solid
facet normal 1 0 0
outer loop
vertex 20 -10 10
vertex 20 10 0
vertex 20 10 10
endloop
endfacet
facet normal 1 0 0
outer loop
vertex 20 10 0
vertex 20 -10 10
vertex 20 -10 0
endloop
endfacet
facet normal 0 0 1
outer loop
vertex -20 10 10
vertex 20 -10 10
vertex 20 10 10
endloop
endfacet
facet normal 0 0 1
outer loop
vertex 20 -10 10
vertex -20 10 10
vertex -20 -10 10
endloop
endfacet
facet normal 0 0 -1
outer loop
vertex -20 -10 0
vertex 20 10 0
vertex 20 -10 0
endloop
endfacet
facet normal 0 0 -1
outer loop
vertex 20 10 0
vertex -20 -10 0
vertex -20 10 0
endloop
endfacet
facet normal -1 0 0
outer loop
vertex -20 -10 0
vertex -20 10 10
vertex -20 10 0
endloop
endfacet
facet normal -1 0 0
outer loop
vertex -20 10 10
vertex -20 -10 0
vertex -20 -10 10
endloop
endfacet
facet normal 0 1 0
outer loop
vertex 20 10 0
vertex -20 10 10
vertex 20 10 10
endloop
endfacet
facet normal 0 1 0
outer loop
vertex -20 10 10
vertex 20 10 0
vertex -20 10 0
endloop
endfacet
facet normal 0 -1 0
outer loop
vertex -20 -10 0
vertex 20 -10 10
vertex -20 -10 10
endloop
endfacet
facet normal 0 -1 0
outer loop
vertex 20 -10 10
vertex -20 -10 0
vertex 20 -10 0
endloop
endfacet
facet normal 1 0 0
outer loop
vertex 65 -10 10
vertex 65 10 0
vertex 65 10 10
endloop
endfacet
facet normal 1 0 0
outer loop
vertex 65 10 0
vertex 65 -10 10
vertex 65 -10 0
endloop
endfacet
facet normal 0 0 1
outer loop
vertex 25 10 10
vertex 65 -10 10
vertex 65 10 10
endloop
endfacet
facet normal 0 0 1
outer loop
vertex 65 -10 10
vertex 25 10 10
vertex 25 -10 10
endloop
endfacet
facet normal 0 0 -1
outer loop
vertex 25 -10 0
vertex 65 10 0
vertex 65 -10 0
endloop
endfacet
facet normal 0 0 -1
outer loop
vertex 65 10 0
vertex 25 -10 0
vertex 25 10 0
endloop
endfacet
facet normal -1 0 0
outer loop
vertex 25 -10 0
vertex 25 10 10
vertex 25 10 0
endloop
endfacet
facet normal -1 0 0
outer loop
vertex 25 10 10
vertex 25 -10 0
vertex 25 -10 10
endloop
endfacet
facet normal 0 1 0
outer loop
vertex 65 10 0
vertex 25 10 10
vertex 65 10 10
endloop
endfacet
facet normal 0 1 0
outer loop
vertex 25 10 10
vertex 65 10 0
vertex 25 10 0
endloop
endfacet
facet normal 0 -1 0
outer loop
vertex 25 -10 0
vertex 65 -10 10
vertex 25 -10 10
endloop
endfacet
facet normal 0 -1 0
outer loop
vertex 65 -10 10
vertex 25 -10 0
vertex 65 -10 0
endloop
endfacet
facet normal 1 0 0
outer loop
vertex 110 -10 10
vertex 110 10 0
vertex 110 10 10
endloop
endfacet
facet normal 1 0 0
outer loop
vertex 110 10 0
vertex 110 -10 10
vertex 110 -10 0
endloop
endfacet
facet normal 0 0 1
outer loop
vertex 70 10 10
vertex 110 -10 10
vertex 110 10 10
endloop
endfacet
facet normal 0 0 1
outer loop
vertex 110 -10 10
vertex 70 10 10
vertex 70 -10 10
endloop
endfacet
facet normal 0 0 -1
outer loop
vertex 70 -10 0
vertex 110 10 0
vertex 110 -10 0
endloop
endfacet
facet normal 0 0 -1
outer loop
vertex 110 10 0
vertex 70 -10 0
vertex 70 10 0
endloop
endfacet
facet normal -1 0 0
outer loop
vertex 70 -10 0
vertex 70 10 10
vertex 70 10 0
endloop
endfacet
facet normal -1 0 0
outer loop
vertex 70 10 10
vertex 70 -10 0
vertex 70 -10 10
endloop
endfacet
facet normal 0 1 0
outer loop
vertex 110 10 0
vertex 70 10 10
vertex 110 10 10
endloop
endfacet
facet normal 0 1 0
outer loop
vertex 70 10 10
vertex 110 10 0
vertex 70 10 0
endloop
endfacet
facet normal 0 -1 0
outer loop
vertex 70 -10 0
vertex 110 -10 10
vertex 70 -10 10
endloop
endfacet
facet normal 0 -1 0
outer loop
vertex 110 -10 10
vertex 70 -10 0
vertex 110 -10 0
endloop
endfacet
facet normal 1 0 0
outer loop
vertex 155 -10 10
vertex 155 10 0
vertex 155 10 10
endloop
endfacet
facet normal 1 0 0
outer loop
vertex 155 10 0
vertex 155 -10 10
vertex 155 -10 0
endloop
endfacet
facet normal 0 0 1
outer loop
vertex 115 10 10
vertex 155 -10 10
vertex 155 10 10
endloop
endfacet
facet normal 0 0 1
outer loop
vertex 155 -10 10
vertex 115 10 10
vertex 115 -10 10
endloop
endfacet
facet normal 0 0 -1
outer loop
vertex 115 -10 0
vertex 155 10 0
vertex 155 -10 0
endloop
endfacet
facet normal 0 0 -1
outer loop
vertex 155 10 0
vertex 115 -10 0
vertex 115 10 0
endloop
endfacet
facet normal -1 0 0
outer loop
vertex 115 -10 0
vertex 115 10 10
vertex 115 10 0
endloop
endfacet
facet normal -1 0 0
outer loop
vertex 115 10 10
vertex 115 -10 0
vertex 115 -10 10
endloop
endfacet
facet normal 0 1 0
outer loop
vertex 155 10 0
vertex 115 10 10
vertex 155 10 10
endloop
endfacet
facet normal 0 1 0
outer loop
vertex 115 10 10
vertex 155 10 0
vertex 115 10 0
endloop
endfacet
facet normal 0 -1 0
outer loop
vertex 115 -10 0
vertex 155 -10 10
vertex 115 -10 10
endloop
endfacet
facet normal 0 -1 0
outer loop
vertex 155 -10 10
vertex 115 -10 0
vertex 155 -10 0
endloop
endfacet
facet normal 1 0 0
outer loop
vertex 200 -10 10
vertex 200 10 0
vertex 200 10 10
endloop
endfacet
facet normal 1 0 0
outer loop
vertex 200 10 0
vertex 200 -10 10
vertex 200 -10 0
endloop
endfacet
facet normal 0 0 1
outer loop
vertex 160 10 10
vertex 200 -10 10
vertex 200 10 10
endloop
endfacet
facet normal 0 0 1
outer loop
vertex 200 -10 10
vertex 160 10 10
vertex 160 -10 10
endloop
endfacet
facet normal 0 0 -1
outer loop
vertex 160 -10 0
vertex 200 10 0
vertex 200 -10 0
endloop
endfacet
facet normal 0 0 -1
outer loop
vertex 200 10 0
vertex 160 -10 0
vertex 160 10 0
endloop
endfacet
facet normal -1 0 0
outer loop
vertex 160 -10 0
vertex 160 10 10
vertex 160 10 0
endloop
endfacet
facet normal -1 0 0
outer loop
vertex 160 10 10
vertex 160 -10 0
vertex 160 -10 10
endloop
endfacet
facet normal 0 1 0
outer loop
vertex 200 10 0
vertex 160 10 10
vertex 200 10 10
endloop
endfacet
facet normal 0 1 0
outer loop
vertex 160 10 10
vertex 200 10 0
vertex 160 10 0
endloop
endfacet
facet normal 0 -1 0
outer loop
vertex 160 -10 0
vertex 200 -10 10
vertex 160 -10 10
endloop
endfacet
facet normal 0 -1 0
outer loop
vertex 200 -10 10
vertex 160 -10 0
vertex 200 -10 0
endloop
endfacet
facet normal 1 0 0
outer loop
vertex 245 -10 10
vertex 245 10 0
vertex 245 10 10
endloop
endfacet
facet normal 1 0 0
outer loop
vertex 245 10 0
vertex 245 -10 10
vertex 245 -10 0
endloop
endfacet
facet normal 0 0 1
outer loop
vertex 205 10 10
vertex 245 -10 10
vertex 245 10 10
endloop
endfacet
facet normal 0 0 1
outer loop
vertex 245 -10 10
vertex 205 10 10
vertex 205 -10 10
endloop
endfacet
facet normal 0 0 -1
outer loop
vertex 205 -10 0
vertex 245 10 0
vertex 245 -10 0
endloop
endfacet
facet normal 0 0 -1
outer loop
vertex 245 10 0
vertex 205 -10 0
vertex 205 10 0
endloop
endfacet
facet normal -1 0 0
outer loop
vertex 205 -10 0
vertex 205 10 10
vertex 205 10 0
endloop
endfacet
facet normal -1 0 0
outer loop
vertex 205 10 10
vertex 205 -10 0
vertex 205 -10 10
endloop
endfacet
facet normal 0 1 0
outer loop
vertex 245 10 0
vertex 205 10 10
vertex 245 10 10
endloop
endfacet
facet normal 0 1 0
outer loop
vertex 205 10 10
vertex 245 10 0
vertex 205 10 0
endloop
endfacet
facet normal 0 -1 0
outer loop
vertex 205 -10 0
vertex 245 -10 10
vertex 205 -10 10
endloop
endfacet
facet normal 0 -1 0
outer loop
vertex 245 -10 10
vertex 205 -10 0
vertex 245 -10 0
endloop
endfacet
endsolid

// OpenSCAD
// Parameters for the rectangular block
block_length = 40;  // Length of the block
block_width = 20;   // Width of the block
block_height = 10;  // Height of the block
block_spacing = 5;  // Spacing between blocks

// Function to create a single rectangular block
module rectangular_block() {
    cube([block_length, block_width, block_height], center = true);
}

// Generate the layer of six rectangular blocks
translate([0, 0, block_height / 2]) {
    for (i = [0:5]) {
        translate([i * (block_length + block_spacing), 0, 0]) {
            rectangular_block();
        }
    }
}
